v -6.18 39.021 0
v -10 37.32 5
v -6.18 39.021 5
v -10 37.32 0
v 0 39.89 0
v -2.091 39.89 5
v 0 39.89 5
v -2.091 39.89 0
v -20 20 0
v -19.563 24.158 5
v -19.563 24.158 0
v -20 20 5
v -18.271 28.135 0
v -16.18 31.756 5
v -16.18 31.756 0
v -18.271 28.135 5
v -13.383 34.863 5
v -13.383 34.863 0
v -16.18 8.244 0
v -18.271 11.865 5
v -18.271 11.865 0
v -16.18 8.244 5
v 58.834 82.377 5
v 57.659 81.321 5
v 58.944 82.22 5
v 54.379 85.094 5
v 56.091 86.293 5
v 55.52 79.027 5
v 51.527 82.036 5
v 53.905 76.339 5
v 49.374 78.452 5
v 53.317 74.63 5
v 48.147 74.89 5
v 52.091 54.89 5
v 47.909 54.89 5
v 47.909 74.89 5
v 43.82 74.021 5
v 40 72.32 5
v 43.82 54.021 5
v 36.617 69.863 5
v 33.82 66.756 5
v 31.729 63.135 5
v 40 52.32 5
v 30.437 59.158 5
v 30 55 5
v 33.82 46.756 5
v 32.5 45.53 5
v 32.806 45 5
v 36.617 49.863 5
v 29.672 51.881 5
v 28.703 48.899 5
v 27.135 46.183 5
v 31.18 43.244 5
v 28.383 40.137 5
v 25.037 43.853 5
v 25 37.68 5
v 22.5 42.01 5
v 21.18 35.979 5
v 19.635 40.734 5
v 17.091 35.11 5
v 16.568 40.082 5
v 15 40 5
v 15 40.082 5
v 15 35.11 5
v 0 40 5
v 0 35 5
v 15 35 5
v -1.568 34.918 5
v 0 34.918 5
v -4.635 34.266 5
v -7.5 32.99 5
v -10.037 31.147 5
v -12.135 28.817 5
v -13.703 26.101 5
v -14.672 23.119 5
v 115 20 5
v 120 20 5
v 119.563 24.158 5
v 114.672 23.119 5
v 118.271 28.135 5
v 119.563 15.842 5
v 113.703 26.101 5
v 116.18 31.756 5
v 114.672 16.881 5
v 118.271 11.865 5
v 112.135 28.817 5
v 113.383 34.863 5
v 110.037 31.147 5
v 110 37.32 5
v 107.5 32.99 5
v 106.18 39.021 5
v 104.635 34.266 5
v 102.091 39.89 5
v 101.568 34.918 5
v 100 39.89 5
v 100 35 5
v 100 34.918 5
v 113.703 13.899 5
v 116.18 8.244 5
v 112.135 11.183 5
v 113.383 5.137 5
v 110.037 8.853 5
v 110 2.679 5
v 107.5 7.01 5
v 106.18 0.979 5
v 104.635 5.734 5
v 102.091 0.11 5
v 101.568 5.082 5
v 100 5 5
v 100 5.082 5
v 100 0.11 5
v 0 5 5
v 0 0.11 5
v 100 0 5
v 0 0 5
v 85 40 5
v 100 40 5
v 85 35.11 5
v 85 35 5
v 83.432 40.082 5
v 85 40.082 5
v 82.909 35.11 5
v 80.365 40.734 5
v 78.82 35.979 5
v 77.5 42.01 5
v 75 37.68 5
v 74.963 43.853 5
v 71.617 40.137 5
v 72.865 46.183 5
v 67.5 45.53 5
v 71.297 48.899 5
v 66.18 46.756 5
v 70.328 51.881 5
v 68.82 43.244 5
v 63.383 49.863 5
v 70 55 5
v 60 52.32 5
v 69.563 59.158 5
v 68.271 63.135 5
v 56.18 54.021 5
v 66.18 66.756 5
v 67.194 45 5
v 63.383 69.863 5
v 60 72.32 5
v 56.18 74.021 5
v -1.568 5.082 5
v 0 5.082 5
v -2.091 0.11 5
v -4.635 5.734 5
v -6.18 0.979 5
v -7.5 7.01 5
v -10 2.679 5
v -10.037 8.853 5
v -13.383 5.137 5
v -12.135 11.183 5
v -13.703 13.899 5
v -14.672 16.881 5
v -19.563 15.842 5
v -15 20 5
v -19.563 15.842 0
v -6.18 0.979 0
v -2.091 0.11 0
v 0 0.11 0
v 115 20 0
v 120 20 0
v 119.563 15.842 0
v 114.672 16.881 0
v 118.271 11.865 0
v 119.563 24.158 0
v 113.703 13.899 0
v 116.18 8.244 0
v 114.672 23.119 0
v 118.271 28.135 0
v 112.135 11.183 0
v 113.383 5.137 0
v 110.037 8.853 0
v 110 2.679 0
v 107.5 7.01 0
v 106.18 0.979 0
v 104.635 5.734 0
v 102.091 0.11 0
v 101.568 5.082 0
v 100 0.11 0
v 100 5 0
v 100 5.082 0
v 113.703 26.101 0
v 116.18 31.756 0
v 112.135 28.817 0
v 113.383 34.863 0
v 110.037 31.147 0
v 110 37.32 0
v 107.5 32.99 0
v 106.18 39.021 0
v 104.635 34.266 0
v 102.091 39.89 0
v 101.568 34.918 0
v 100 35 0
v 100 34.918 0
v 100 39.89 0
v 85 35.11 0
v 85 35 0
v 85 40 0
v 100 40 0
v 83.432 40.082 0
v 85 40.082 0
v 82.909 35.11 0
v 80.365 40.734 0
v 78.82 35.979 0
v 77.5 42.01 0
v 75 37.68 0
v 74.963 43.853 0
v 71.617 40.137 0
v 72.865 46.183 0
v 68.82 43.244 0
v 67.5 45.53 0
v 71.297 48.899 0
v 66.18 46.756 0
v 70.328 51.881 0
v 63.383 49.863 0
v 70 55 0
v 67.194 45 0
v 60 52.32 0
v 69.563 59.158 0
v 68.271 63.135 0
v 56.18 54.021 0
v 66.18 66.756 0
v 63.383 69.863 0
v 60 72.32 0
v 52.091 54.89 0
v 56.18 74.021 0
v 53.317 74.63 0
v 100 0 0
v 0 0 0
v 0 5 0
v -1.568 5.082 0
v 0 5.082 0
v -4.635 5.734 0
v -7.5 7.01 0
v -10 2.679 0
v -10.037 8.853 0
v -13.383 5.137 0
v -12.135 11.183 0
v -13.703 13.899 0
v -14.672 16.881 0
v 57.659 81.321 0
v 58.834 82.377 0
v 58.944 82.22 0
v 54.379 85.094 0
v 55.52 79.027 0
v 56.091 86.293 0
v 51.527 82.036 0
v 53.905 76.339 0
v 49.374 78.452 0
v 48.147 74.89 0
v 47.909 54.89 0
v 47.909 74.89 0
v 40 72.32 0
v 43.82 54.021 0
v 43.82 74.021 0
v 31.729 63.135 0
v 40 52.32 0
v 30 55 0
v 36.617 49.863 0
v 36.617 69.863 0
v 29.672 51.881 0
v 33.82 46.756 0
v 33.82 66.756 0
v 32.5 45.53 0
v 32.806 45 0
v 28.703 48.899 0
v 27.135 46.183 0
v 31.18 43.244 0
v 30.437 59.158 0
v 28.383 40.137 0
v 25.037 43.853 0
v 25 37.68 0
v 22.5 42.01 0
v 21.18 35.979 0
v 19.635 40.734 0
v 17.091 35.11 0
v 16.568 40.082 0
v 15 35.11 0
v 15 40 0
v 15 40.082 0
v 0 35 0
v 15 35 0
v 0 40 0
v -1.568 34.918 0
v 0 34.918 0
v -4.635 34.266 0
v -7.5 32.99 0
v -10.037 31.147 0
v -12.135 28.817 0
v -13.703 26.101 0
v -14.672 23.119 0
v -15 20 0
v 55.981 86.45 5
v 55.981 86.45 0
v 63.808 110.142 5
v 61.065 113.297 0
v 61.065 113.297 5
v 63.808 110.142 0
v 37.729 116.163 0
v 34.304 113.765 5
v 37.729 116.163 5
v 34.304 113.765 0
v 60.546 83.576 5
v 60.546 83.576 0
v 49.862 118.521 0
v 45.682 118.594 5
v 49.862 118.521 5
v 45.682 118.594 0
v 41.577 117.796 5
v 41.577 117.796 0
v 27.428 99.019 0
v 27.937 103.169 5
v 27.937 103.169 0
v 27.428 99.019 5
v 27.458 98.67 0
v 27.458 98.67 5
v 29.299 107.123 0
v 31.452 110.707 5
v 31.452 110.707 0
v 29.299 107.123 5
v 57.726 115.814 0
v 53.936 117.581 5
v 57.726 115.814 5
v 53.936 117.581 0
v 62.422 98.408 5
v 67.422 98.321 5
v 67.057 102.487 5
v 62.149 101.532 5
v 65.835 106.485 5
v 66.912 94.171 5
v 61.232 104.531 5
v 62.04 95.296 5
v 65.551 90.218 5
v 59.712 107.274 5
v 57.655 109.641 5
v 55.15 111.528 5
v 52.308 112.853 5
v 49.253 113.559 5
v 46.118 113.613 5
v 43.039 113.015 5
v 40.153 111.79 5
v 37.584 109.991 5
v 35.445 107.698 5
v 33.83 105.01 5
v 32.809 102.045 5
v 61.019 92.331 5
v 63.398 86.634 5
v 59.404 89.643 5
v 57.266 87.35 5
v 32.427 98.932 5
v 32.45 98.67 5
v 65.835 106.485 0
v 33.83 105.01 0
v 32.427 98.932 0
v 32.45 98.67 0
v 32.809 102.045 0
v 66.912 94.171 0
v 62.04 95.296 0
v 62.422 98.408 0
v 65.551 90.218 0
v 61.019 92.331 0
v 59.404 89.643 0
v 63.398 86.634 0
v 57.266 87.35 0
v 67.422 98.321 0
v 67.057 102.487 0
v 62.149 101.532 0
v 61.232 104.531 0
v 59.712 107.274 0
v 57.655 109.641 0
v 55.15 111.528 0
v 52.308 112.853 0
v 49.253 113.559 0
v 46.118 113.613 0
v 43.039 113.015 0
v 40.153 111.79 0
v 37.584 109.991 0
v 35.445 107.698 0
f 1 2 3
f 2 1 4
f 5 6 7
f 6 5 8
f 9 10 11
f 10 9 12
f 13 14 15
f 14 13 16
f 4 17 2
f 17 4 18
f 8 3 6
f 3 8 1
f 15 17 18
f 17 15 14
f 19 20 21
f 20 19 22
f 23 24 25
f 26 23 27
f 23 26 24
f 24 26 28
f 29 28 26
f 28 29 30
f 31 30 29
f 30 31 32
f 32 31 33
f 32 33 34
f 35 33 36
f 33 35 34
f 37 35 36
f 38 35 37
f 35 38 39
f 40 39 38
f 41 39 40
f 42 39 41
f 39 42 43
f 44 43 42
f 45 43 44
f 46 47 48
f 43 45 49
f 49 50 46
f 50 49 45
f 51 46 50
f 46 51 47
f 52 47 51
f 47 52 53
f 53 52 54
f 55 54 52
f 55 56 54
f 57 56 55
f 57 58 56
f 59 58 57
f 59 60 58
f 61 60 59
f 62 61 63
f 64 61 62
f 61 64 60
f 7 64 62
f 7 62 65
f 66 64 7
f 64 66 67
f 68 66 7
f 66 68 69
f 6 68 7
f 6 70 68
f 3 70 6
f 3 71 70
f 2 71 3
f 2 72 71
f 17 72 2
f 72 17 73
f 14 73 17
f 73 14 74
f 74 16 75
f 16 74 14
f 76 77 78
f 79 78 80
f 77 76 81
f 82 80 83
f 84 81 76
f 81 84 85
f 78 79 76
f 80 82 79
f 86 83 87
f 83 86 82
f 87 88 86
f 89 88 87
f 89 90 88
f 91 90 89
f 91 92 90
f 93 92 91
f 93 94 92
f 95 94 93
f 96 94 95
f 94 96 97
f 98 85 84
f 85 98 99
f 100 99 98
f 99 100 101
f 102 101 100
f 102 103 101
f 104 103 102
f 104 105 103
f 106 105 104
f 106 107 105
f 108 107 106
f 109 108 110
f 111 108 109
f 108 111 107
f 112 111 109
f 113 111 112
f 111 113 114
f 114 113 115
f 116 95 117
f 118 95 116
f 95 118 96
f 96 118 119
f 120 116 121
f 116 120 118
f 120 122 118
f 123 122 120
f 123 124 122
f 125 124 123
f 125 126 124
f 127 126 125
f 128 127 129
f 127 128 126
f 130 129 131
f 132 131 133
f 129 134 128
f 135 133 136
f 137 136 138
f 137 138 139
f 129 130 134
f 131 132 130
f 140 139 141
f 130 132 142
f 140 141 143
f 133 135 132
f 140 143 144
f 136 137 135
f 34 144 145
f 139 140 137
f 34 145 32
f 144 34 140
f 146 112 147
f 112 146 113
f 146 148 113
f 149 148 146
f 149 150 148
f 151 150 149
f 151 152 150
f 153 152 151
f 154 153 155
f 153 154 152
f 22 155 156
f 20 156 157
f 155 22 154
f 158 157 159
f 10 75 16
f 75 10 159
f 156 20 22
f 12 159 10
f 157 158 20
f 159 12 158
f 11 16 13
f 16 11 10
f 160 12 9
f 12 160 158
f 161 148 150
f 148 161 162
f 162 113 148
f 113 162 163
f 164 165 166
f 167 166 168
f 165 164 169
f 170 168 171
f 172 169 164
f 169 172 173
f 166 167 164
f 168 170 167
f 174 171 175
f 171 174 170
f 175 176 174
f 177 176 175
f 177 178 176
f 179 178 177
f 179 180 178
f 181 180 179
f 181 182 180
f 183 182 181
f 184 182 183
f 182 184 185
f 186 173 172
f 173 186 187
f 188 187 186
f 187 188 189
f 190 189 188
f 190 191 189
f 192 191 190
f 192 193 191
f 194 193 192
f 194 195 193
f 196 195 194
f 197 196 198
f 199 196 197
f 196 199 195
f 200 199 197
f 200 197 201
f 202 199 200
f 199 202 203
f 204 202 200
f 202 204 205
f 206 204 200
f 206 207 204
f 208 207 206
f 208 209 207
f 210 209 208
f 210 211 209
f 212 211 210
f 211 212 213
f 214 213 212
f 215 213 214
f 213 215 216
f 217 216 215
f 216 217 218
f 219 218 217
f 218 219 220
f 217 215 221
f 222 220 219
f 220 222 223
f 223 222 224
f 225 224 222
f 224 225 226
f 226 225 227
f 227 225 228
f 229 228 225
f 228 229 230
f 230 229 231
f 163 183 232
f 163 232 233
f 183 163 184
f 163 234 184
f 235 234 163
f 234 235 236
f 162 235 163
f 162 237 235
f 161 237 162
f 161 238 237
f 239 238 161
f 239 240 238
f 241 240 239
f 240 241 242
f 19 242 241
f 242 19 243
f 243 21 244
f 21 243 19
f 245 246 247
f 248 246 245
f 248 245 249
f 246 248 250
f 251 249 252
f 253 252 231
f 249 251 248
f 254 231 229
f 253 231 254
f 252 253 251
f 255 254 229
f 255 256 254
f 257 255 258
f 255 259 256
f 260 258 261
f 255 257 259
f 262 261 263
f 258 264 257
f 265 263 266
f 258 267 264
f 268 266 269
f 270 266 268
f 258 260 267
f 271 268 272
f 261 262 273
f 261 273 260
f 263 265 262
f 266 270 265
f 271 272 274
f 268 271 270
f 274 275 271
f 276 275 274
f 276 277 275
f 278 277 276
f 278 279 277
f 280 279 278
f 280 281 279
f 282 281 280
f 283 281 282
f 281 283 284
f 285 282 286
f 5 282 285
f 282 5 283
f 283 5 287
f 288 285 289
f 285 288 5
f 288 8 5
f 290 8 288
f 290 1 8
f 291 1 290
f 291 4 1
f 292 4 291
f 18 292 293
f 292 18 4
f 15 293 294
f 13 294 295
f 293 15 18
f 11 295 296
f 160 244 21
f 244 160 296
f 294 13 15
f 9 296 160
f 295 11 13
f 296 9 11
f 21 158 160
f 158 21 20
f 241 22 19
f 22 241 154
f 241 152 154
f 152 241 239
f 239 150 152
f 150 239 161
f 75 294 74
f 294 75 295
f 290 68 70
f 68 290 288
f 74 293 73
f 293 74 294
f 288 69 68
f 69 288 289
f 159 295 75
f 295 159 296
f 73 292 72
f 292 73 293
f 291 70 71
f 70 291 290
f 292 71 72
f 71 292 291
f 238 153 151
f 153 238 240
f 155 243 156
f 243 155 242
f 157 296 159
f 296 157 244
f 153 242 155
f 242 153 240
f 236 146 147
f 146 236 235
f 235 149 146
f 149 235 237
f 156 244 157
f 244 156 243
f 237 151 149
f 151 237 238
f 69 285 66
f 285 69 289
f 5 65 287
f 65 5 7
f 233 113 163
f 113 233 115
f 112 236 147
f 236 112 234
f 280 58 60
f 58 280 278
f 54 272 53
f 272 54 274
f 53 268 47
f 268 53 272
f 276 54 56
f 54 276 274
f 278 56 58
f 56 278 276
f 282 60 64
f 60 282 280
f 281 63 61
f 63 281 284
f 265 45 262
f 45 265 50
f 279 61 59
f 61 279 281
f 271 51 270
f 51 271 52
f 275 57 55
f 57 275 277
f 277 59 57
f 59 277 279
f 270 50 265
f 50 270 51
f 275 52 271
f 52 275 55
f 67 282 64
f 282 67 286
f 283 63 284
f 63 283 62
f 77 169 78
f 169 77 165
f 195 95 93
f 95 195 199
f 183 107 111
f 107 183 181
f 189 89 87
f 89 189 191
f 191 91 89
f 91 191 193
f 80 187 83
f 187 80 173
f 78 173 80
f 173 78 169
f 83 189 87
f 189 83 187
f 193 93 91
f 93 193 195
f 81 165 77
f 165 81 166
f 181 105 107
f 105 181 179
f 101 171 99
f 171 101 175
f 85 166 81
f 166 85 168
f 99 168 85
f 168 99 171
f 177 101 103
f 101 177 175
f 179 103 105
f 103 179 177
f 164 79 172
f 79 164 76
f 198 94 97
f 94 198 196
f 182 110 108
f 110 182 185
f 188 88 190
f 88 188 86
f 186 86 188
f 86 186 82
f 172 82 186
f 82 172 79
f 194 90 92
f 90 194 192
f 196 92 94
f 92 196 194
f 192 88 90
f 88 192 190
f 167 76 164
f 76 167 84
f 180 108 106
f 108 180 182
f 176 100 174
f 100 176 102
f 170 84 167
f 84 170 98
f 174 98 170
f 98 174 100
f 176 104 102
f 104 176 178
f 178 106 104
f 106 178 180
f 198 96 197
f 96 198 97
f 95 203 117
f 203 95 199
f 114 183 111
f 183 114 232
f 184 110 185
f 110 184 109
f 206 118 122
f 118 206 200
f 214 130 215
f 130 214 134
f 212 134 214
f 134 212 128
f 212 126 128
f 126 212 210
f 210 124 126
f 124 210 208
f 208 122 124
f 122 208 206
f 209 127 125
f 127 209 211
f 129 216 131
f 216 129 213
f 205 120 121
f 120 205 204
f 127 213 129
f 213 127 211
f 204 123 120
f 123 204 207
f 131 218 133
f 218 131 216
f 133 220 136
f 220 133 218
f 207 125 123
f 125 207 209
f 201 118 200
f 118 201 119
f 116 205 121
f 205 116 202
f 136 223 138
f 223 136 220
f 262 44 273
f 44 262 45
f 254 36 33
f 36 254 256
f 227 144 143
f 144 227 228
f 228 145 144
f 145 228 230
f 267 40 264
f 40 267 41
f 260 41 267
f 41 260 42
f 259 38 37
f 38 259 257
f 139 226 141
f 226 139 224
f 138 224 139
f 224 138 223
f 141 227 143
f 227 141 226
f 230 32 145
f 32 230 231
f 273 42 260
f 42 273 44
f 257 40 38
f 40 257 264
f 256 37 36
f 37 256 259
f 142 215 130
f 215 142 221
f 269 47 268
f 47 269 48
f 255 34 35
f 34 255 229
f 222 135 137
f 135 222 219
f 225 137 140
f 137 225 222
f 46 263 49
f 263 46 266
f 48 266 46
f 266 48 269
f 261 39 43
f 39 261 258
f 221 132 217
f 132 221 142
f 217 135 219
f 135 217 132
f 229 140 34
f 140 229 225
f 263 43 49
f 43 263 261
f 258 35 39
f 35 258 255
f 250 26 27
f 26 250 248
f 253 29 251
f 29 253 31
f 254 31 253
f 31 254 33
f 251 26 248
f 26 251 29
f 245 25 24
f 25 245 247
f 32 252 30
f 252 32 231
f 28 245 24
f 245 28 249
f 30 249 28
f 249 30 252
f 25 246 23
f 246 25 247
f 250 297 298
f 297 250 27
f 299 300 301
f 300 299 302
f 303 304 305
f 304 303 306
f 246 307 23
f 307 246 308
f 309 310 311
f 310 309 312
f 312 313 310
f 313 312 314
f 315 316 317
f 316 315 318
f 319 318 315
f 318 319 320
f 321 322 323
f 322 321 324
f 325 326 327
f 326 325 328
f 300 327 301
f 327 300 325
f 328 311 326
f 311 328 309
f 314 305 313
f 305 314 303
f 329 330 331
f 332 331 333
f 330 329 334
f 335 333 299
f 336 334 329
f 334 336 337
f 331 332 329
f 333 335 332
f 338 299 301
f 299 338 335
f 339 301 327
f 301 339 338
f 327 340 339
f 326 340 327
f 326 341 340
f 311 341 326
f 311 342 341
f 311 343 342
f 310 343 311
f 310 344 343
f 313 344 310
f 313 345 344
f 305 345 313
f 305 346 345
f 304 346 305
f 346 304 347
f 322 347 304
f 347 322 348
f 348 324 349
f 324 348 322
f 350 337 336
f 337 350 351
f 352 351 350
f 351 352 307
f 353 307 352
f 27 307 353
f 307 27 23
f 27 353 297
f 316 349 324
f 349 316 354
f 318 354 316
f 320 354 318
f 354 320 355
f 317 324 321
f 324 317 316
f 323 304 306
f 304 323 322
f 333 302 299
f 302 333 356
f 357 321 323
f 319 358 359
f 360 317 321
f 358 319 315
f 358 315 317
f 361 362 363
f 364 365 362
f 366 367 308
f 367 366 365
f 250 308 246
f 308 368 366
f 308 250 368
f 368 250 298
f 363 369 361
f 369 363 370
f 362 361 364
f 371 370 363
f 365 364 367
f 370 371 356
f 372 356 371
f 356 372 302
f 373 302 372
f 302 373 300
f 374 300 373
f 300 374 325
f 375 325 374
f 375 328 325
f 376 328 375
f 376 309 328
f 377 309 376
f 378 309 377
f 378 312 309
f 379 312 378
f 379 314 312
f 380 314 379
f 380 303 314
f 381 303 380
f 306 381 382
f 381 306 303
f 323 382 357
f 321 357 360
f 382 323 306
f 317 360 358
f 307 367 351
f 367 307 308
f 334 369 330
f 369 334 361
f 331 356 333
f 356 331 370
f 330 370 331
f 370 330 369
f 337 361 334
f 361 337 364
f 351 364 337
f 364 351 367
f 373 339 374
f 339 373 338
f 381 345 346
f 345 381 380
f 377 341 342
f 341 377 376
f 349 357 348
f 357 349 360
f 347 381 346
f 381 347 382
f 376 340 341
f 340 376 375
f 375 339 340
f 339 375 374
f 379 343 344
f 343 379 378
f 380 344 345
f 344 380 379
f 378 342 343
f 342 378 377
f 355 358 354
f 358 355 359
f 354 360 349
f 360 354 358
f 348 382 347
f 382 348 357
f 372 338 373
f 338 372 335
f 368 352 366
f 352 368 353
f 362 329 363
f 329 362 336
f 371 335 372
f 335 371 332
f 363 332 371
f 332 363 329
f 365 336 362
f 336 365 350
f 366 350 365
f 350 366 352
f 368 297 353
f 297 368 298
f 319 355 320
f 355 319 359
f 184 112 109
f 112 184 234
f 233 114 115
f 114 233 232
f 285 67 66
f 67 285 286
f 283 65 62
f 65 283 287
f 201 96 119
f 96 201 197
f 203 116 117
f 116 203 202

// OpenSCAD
thickness = 5;
width = 100;
curve_radius = 20;
curve_radius_inner = curve_radius - thickness;


cube([width, thickness, thickness]);

// LEFT
translate([0, curve_radius, 0]) {
    difference() {
        cylinder(h=thickness, r=curve_radius);
        translate([0, 0, -1]) cylinder(h=thickness + 2, r=curve_radius_inner);
        translate([0, -curve_radius, -1]) cube([curve_radius, 2 * curve_radius, thickness + 2]);
    }
}

translate([0, 2 * curve_radius - thickness, 0]) cube([width/2 - 2 * curve_radius + thickness, thickness, thickness]);

translate([width/2 - 2 * curve_radius + thickness, 3 * curve_radius - thickness, 0]) {
    difference() {
        cylinder(h=thickness, r=curve_radius);
        translate([0, 0, -1]) cylinder(h=thickness + 2, r=curve_radius_inner);
        translate([-curve_radius, -curve_radius, -1]) cube([curve_radius, 2 * curve_radius, thickness + 2]);
        translate([-1, 0, -1]) cube([curve_radius + 1, curve_radius, thickness + 2]);
    }
}


// RIGHT
translate([width, curve_radius, 0]) {
    difference() {
        cylinder(h=thickness, r=curve_radius);
        translate([0, 0, -1]) cylinder(h=12, r=curve_radius_inner);
        translate([-curve_radius, -curve_radius, -1]) cube([curve_radius, 2 * curve_radius, thickness + 2]);
    }
}
translate([width/2 + 2 * curve_radius - thickness, 2 * curve_radius - thickness, 0]) cube([width/2 - 2 * curve_radius + thickness, thickness, thickness]);

translate([width / 2 + 2 * curve_radius - thickness, 3 * curve_radius - thickness, 0]) {
    difference() {
        cylinder(h=thickness, r=curve_radius);
        translate([0, 0, -1]) cylinder(h=thickness + 2, r=curve_radius_inner);
        translate([0, -curve_radius, -1]) cube([curve_radius, 2 * curve_radius, thickness + 2]);
        translate([-curve_radius, 0, -1]) cube([curve_radius + 1, curve_radius, thickness + 2]);
    }
}

// TOP
translate([width/2, 3 * curve_radius - thickness, 0]) {
    difference() {
        cylinder(h=thickness, r=curve_radius);
        translate([0, -curve_radius, -1]) cylinder(h=thickness + 2, r=curve_radius);
    }
}


hook_rotate = 35;

translate([width / 2 + curve_radius - thickness/2, 3.5 * curve_radius , 0]) {
    rotate([0, 0, hook_rotate]) {
        difference() {
            cylinder(h=thickness, r=curve_radius);
            translate([0, 0, -1]) cylinder(h=thickness + 2, r=curve_radius_inner);
            translate([-curve_radius, -curve_radius, -1]) cube([2 * curve_radius, curve_radius, thickness + 2]);
            translate([0, -curve_radius, -1]) cube([curve_radius, 2 * curve_radius, thickness + 2]);
        }

        translate([0, 2 * curve_radius - thickness, 0]) {
            difference() {
                cylinder(h=thickness, r=curve_radius);
                translate([0, 0, -1]) cylinder(h=thickness + 2, r=curve_radius_inner);
                translate([-30, -30, -1]) cube([30, 30, thickness + 2]);
                rotate([0, 0, -35]) translate([-30, -30, -1]) cube([30, 30, thickness + 2]);
            }
        }
    }
}
